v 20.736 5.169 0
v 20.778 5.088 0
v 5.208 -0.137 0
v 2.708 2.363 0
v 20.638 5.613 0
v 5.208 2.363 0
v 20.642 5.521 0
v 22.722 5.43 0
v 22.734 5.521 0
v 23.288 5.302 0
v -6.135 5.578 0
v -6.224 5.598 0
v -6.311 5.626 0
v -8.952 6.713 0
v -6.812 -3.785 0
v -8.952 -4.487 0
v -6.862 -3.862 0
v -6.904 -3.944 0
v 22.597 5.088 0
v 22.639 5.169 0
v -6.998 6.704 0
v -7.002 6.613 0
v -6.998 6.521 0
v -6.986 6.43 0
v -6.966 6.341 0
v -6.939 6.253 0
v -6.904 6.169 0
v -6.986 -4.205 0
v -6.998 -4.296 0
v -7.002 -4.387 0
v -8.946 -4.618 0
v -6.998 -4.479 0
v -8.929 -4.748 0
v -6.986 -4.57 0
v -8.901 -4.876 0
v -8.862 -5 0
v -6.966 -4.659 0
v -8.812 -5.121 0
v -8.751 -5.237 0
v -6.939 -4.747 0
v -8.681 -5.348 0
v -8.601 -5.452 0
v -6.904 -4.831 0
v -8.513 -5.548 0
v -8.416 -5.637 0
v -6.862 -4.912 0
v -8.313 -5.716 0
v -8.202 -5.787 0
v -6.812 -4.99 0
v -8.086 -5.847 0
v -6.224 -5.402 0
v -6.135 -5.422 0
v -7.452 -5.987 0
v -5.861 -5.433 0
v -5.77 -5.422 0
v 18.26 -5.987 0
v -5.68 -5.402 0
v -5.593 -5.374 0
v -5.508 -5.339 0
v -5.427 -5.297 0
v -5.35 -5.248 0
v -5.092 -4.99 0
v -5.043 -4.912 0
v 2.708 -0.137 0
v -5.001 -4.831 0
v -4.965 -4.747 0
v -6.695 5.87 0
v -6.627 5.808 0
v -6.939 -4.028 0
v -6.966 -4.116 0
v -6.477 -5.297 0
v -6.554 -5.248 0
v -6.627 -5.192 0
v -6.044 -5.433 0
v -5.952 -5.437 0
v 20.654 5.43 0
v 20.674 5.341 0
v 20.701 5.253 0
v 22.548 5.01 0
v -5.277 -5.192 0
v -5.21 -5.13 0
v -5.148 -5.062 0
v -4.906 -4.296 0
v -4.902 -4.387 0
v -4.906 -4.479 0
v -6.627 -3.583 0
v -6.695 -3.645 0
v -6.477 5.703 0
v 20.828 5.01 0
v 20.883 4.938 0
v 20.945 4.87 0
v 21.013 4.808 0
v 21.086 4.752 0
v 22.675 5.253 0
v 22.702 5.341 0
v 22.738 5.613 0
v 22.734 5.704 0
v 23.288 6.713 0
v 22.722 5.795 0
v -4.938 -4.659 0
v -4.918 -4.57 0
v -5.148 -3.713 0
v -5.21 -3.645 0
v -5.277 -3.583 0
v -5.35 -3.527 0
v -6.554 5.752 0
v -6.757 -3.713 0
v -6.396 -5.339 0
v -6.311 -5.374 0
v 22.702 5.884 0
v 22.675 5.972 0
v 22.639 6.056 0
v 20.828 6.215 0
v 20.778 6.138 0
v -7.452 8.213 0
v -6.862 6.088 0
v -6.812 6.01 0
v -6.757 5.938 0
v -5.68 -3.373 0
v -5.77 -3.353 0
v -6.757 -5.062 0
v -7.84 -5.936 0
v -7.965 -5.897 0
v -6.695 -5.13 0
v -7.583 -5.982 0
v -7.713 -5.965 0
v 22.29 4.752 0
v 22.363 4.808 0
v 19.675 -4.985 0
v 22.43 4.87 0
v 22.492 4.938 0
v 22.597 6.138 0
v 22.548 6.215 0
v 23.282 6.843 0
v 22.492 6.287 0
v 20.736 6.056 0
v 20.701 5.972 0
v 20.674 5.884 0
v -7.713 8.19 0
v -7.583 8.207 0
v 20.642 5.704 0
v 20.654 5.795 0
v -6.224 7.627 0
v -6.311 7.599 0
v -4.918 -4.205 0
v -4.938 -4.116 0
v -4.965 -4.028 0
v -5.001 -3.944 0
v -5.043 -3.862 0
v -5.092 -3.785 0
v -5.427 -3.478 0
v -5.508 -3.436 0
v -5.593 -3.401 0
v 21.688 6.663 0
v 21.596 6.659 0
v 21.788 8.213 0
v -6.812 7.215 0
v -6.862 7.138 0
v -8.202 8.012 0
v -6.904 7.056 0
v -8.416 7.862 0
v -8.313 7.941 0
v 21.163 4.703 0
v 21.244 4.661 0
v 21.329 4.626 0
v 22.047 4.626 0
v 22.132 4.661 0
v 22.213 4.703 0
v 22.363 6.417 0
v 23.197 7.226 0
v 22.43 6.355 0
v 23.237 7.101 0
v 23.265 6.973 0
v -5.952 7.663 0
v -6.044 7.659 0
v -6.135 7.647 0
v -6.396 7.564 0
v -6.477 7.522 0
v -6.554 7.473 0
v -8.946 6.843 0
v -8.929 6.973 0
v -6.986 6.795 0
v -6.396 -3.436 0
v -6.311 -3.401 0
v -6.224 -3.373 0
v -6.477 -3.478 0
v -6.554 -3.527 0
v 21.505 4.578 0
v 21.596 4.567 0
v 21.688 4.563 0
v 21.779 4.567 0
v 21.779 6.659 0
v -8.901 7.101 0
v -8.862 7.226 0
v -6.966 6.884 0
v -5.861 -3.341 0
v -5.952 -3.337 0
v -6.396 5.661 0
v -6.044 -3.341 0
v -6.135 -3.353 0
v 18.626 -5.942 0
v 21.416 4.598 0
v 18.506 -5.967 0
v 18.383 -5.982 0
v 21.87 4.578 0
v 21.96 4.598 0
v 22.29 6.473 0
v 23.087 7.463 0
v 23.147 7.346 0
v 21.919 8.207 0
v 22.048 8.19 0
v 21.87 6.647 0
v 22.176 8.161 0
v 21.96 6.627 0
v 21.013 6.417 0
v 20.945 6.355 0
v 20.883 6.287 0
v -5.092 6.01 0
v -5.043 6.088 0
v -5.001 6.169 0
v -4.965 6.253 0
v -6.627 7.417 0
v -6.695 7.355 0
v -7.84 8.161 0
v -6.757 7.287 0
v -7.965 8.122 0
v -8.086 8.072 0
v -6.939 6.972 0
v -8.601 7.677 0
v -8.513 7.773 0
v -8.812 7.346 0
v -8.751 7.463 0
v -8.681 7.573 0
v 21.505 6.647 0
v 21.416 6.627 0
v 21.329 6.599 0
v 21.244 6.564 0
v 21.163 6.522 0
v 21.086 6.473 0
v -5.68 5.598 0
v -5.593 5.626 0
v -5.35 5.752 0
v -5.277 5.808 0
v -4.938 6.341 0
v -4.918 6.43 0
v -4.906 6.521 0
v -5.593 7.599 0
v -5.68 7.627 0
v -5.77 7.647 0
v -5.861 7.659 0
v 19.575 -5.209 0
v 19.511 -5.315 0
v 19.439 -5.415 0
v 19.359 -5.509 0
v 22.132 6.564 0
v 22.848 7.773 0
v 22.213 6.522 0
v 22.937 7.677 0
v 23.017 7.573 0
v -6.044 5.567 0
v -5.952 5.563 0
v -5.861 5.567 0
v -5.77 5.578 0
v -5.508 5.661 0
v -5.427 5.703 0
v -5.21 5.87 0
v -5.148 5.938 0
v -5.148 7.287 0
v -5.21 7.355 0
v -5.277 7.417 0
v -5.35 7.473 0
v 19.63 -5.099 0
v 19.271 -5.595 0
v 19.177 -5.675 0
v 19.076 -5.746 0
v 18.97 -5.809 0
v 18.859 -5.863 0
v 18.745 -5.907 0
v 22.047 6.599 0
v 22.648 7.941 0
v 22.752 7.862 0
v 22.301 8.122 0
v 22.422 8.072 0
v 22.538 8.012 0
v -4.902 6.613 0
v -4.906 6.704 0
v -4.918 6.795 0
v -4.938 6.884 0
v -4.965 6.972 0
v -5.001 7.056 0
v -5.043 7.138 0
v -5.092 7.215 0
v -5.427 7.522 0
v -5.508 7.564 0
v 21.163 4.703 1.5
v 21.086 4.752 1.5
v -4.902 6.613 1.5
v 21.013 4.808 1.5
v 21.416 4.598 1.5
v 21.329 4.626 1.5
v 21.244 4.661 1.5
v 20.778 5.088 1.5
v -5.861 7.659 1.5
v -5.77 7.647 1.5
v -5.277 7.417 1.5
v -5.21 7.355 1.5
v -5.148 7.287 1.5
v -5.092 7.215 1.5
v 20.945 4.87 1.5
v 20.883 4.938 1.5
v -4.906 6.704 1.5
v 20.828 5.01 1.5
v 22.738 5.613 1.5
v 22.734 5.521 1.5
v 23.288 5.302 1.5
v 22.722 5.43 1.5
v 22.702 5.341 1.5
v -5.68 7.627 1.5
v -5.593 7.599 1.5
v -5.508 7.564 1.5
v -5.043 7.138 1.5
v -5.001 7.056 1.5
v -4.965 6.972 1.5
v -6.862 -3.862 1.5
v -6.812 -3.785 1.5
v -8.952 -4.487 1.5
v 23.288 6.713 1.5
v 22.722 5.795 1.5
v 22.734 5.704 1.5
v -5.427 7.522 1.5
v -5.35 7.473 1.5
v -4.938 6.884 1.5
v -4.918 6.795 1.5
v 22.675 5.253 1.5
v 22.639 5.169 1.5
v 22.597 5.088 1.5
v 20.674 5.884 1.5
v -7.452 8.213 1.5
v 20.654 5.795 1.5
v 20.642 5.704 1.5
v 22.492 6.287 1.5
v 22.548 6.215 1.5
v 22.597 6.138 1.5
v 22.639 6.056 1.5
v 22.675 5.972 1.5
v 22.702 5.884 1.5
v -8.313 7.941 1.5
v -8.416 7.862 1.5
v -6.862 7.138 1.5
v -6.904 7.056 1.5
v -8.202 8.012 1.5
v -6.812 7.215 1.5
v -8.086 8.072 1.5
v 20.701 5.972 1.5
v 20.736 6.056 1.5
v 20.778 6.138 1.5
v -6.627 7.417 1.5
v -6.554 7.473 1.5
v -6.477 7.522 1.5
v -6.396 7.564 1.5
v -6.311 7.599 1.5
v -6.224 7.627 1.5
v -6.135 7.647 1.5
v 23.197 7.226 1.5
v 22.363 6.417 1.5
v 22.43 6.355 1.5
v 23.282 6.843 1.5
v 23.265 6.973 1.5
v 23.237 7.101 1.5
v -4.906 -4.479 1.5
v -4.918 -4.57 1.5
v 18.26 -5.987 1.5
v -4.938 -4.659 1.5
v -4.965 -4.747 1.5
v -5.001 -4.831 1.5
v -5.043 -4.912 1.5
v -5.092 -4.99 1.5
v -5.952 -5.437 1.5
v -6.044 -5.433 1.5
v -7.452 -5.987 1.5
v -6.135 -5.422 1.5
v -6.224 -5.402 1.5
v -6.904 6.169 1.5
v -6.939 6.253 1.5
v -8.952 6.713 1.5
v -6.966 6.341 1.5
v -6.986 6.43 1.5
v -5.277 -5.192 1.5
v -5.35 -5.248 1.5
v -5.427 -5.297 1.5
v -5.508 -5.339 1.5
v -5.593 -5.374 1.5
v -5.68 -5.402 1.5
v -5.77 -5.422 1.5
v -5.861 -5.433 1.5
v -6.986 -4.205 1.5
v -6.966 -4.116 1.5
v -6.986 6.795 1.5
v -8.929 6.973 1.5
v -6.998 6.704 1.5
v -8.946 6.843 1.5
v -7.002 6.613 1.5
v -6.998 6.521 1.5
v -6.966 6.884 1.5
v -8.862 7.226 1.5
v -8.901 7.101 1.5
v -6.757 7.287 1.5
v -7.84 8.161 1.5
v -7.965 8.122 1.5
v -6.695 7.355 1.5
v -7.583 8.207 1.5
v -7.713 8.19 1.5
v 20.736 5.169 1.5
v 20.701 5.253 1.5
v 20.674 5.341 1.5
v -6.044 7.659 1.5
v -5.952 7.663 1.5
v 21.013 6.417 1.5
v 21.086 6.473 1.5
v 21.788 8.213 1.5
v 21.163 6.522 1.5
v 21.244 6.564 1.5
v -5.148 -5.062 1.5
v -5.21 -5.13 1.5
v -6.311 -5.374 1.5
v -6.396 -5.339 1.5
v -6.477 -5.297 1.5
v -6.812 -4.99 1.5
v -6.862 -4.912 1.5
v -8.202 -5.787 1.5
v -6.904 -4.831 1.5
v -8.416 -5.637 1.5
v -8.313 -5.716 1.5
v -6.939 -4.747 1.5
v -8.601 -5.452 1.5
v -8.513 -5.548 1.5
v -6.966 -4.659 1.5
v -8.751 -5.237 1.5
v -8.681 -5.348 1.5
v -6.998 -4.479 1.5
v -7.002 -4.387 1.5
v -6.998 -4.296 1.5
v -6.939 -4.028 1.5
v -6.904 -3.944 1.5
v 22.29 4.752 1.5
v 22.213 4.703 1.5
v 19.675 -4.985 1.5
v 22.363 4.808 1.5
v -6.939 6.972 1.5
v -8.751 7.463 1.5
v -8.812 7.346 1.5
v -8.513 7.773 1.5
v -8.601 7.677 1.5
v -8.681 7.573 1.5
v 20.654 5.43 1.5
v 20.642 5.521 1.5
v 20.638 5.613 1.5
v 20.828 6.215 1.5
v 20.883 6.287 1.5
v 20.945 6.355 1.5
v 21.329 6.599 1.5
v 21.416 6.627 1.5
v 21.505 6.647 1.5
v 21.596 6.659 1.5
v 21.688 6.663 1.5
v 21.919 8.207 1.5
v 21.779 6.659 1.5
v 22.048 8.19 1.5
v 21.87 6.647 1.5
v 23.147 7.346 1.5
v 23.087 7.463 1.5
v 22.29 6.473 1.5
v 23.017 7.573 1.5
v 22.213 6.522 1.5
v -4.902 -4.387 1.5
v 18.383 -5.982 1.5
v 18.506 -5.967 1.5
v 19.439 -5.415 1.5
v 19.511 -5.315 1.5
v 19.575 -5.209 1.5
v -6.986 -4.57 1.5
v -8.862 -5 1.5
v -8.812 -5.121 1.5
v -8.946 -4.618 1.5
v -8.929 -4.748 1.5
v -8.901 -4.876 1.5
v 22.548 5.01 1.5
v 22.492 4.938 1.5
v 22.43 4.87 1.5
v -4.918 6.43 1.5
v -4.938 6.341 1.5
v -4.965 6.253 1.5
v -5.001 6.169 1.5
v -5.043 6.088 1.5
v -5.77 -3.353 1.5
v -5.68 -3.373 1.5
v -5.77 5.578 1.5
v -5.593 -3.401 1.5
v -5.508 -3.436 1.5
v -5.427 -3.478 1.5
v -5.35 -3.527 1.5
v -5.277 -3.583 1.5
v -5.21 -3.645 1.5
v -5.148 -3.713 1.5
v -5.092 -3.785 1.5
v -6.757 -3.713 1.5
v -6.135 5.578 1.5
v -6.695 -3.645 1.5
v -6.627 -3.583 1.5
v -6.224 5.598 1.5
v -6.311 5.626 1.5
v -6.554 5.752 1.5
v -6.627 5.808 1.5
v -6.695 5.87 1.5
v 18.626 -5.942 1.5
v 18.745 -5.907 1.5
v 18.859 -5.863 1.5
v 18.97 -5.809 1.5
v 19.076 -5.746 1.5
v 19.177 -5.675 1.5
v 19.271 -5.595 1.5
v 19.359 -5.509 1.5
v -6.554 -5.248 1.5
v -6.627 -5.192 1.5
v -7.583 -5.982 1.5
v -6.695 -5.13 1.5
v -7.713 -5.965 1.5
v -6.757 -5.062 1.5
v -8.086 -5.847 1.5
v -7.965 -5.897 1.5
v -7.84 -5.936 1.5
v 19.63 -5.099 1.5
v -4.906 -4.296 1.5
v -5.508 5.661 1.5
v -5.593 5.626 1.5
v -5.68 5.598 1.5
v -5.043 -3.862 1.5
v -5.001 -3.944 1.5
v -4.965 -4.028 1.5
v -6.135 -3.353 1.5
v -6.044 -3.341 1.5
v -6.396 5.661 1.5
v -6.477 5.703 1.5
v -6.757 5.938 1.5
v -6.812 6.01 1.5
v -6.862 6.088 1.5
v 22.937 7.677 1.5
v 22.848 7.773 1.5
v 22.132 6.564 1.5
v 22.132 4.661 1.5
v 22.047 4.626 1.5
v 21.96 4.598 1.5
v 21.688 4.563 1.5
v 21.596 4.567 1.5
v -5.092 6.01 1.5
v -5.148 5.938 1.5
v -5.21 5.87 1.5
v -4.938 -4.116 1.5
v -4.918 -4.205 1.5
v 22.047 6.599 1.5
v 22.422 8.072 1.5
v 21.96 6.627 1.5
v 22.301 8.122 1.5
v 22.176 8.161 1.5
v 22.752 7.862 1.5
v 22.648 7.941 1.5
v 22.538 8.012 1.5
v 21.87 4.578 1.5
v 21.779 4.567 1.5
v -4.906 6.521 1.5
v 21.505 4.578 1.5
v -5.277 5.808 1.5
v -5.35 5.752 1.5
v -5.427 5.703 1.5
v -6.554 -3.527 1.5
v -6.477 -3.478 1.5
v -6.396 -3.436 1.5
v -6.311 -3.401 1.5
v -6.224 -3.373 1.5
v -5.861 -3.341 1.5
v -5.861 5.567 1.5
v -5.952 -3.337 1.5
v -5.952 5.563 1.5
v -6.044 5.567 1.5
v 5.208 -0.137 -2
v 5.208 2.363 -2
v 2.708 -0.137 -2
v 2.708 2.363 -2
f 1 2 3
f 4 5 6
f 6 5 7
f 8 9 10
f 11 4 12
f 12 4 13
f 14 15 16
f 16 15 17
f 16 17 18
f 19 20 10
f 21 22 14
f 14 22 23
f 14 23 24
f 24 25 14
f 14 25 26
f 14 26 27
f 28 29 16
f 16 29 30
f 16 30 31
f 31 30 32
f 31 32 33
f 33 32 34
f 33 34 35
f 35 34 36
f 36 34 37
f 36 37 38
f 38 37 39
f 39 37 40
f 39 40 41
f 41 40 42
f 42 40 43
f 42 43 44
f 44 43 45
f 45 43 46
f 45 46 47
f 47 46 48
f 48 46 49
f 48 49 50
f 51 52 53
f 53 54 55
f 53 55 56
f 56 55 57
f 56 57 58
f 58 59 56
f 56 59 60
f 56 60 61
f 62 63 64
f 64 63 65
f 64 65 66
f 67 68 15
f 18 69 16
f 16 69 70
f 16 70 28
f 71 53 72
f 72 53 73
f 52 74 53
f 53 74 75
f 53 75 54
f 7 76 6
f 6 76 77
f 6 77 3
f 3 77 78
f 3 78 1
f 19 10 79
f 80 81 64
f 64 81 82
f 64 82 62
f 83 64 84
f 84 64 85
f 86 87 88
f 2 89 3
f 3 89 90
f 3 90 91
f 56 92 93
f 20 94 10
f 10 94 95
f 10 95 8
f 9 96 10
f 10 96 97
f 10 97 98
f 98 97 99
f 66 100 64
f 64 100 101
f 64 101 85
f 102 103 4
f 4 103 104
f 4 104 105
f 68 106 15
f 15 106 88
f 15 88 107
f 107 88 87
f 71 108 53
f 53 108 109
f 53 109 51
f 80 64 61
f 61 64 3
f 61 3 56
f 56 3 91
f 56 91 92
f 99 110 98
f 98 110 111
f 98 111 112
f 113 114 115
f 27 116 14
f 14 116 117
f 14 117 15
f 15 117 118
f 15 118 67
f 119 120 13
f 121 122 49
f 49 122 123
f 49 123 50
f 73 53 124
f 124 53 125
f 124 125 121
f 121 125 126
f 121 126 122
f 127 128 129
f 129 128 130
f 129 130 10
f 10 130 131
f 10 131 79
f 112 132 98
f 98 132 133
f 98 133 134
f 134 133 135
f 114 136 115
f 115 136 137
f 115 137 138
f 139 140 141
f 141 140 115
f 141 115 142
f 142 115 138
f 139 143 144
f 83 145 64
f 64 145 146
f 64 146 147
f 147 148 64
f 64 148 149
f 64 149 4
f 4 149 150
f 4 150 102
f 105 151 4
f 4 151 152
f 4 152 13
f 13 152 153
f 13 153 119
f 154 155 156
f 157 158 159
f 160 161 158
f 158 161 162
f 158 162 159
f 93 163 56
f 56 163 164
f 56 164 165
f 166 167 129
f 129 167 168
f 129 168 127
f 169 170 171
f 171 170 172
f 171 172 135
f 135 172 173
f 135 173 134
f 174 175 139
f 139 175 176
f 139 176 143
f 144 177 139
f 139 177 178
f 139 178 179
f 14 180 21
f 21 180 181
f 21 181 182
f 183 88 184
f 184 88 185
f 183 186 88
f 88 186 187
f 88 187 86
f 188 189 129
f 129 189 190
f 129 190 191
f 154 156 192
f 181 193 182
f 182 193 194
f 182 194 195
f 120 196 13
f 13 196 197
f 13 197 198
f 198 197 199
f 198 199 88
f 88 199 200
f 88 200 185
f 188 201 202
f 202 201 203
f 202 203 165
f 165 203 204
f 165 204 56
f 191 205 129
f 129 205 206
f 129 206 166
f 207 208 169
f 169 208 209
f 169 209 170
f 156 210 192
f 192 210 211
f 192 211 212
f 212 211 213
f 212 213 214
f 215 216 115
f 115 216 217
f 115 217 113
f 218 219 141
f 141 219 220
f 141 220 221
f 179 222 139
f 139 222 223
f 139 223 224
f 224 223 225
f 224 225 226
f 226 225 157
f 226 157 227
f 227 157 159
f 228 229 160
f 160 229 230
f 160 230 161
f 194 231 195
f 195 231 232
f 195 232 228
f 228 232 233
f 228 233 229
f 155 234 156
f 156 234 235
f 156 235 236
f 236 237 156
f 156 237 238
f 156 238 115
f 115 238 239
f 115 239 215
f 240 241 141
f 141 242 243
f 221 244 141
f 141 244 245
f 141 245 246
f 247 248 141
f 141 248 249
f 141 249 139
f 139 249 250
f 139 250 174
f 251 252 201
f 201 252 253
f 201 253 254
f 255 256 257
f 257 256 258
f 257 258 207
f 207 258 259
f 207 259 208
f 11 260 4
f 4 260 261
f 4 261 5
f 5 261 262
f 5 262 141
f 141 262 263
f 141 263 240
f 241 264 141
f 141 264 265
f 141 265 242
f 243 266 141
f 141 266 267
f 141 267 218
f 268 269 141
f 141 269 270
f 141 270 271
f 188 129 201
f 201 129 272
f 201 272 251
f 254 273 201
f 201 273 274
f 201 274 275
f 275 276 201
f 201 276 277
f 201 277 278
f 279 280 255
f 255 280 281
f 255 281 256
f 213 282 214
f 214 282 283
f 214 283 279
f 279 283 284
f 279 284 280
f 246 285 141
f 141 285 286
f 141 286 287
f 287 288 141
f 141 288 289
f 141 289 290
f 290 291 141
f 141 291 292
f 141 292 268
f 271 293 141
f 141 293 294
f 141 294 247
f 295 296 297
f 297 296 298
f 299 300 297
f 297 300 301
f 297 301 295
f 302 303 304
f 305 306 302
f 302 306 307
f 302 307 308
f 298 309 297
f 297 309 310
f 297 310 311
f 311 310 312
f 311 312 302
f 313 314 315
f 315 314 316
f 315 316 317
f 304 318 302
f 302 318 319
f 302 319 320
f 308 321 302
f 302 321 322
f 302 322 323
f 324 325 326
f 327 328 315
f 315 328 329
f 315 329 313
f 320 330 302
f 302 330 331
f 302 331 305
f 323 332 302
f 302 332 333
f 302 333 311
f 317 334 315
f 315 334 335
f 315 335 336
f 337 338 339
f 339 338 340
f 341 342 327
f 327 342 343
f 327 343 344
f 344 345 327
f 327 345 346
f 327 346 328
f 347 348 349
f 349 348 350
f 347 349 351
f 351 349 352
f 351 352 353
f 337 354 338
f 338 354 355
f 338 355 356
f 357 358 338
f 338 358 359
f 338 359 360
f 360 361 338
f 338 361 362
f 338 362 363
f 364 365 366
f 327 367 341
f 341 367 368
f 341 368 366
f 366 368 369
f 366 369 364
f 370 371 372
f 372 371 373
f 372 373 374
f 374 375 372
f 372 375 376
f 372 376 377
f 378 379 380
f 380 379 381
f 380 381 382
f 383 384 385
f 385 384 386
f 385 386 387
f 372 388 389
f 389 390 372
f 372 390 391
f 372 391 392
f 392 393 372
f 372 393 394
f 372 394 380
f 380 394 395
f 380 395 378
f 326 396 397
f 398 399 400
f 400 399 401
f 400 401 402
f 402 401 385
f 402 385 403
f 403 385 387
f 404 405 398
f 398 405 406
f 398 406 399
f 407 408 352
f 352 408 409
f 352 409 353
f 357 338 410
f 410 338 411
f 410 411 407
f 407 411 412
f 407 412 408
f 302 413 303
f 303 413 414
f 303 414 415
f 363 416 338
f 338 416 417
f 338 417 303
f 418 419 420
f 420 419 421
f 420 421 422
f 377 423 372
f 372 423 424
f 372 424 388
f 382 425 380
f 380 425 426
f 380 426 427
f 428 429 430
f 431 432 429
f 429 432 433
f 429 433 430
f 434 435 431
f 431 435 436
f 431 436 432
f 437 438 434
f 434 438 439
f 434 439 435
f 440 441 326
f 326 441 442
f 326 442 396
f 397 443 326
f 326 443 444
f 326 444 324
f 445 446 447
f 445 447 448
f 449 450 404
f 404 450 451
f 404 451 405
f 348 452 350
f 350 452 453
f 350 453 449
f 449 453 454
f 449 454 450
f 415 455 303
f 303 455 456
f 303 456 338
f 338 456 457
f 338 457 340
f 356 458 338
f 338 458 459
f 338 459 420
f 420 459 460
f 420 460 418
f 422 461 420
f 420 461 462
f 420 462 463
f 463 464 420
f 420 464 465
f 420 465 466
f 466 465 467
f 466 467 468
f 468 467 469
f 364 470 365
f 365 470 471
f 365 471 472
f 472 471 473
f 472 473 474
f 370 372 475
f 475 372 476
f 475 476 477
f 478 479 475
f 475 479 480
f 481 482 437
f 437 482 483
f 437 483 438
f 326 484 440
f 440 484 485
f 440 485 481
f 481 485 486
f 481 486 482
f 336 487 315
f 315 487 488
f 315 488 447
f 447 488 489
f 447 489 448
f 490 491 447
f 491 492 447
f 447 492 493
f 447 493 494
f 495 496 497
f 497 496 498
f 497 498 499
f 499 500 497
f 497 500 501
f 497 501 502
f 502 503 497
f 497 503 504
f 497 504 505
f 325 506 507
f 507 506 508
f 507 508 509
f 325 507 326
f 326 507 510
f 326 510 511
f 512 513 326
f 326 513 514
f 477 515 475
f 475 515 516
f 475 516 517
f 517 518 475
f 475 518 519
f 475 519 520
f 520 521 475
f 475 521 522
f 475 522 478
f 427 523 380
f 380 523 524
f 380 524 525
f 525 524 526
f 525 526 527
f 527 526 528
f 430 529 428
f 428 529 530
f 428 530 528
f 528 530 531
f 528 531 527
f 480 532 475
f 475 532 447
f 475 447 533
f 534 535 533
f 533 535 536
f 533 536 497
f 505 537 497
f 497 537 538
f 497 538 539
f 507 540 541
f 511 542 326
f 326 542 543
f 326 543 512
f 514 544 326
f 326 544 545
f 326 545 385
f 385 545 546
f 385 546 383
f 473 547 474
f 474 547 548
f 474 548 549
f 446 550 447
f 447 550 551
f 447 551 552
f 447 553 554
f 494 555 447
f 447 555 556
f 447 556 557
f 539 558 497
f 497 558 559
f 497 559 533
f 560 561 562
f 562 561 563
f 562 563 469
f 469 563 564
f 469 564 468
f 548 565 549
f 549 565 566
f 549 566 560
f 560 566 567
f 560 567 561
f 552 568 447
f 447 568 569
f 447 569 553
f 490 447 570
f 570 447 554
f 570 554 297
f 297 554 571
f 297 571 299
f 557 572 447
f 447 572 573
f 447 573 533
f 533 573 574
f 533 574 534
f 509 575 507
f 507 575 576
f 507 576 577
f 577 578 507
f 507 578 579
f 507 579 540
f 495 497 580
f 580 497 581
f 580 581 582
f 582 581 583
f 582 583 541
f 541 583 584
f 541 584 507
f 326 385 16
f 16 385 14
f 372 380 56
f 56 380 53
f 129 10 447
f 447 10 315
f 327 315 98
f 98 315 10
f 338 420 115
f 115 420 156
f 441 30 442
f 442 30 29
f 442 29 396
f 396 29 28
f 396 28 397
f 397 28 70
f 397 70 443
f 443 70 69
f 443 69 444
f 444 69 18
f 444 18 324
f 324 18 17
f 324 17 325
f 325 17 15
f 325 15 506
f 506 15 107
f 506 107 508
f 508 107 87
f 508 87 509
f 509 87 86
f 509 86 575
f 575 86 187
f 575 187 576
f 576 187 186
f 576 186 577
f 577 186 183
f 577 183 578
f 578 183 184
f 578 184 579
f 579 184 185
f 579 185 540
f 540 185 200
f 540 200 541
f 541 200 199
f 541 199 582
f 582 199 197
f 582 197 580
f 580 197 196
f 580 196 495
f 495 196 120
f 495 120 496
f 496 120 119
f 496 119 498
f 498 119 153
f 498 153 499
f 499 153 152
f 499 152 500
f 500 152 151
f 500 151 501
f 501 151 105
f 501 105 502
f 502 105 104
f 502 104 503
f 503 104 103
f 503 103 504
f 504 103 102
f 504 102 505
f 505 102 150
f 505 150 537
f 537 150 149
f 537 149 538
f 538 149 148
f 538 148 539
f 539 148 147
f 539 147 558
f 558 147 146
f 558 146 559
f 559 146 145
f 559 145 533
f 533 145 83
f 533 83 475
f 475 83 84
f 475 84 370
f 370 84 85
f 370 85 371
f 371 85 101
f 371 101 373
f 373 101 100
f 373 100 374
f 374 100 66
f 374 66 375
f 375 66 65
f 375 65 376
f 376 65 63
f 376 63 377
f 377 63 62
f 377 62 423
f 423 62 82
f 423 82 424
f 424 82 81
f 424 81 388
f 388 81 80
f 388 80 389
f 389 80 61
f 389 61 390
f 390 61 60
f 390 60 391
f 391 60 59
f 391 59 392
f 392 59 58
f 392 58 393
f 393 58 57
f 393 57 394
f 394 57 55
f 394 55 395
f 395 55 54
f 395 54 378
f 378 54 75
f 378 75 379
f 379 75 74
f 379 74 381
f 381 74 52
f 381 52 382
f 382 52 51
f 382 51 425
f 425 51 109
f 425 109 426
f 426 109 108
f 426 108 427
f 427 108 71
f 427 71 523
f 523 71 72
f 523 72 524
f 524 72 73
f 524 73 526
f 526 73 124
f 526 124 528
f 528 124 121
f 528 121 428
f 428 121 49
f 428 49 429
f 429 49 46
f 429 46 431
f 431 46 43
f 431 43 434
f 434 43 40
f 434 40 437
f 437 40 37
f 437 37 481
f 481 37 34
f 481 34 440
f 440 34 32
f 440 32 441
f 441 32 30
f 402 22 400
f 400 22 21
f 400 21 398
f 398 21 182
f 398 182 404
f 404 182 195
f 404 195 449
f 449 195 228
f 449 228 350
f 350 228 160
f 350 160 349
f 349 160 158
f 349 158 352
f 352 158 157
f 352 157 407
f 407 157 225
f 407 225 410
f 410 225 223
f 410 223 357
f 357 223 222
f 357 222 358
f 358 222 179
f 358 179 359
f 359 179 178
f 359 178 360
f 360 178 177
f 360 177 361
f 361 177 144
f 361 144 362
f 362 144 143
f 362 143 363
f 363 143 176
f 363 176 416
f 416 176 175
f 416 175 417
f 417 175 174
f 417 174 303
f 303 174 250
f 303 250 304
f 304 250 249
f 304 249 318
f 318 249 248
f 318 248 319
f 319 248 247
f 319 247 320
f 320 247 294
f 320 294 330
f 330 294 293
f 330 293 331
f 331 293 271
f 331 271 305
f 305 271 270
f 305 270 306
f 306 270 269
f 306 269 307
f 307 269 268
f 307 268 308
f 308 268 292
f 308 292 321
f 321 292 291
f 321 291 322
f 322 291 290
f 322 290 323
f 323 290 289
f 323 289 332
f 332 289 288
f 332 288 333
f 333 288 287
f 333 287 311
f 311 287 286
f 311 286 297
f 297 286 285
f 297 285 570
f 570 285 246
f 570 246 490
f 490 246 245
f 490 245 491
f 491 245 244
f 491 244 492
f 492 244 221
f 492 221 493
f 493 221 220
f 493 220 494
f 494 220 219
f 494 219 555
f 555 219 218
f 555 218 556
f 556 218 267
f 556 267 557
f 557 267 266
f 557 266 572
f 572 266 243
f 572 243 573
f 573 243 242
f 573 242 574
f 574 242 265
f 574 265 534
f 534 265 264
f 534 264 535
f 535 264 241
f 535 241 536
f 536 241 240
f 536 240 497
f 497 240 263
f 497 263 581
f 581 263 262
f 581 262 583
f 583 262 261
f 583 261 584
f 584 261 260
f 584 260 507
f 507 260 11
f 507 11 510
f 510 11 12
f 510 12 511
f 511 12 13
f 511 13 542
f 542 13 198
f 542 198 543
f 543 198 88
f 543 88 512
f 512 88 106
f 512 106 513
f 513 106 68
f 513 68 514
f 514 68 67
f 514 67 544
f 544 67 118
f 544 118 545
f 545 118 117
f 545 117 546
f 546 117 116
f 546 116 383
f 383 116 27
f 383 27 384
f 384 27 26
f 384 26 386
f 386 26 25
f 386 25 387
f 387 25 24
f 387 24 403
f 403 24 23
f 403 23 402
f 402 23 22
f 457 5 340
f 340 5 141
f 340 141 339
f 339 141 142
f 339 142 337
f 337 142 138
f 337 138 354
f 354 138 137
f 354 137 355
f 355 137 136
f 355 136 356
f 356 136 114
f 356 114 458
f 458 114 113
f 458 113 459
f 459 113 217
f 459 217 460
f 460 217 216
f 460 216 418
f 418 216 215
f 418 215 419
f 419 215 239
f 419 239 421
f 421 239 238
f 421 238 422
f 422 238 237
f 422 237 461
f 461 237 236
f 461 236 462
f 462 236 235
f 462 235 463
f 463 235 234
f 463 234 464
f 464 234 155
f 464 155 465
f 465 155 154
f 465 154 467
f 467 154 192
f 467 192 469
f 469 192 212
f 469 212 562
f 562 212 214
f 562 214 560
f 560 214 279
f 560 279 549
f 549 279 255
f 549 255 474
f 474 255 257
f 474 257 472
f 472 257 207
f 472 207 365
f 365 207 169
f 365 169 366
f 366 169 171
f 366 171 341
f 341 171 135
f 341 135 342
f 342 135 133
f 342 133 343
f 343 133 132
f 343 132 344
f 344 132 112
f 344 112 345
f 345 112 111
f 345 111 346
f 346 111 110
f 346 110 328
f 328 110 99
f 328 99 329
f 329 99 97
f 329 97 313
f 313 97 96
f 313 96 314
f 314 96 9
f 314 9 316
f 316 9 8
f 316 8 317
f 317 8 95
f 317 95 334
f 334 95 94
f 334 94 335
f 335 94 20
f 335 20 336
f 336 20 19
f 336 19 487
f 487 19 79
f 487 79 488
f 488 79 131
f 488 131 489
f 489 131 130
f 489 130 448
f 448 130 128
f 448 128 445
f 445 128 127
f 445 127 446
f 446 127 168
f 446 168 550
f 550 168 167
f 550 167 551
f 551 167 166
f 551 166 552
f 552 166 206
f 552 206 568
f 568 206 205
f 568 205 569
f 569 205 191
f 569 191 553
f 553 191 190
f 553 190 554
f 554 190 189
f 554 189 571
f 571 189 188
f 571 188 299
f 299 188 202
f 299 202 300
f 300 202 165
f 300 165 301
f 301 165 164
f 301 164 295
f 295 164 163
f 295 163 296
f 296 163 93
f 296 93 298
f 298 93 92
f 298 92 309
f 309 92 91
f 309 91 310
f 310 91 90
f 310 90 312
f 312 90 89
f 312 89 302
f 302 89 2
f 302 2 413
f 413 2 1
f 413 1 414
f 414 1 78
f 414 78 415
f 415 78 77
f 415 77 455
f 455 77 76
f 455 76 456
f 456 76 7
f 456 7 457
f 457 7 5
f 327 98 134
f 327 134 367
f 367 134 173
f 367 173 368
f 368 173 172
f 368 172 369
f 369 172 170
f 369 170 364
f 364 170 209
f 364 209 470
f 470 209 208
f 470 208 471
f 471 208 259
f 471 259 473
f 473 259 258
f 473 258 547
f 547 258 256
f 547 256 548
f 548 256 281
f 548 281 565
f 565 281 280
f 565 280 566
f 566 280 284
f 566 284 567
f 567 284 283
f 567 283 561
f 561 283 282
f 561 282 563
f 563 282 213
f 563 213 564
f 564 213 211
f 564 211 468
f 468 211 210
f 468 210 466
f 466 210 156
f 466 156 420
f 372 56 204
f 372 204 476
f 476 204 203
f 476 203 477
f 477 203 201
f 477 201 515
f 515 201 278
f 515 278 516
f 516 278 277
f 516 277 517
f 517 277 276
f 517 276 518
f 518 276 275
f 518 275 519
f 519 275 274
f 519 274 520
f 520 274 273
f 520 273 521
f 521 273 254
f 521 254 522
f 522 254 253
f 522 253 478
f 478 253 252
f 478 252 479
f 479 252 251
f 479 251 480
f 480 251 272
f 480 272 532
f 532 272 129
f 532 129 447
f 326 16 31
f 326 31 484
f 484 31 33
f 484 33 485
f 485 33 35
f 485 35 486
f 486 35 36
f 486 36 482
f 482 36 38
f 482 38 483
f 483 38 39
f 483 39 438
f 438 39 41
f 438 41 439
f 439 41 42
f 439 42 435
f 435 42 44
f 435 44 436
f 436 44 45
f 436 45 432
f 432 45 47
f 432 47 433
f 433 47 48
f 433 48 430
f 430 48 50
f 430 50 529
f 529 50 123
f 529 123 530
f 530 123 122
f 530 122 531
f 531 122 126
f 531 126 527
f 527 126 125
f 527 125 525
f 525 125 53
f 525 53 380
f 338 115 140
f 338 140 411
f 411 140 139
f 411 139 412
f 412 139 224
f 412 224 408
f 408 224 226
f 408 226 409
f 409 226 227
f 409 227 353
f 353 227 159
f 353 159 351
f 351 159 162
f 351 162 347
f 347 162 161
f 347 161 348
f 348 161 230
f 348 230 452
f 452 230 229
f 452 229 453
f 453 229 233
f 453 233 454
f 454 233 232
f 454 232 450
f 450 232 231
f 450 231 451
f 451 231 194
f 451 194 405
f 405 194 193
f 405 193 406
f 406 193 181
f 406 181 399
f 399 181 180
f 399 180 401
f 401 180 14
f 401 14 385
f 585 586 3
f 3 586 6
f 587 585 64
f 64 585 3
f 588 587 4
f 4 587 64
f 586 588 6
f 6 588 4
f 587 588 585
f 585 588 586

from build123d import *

# Parameters (mm, degrees)
ESQUISSE1_R        = 1.05
BOSS_EXTRU_1_DEPTH = 1.5
CONG_1_R           = 1.5
CONG_2_R           = 1.5
ESQUISSE3_W        = 2.5
ESQUISSE3_H        = 2.5
BOSS_EXTRU_2_DEPTH = 2


with BuildPart() as part:
    # Esquisse1 → Boss.-Extru.1 (new body)
    with BuildSketch(Plane.XY):
        Polygon((-8.952173913, 8.212533242), (23.287826087, 8.212533242), (23.287826087, 5.301553174), (19.32314664, -5.987466758), (-8.952173913, -5.987466758), align=None)
        with Locations((-5.952173913, -4.387466758)):
            Circle(ESQUISSE1_R, mode=Mode.SUBTRACT)
        with Locations((-5.952173913, 6.612533242)):
            Circle(ESQUISSE1_R, mode=Mode.SUBTRACT)
        with Locations((21.687826087, 5.612533242)):
            Circle(ESQUISSE1_R, mode=Mode.SUBTRACT)
    extrude(amount=BOSS_EXTRU_1_DEPTH)

    # Congé1
    cong_1_edges = [part.edges().sort_by_distance(p)[0] for p in [
        (23.287826087, 8.212533242, 0.75),
    ]]
    fillet(cong_1_edges, radius=CONG_1_R)

    # Congé2
    cong_2_edges = [part.edges().sort_by_distance(p)[0] for p in [
        (-8.952173913, 8.212533242, 0.75),
        (19.32314664, -5.987466758, 0.75),
        (-8.952173913, -5.987466758, 0.75),
    ]]
    fillet(cong_2_edges, radius=CONG_2_R)

    # Esquisse3 → Boss.-Extru.2 (add)
    with BuildSketch(Plane(origin=(0, 0, 0), x_dir=(-1, 0, 0), z_dir=(0, 0, -1))):
        with Locations((-3.957826087, 1.112533242)):
            Rectangle(ESQUISSE3_W, ESQUISSE3_H)
    extrude(amount=BOSS_EXTRU_2_DEPTH)


solid = part.part
